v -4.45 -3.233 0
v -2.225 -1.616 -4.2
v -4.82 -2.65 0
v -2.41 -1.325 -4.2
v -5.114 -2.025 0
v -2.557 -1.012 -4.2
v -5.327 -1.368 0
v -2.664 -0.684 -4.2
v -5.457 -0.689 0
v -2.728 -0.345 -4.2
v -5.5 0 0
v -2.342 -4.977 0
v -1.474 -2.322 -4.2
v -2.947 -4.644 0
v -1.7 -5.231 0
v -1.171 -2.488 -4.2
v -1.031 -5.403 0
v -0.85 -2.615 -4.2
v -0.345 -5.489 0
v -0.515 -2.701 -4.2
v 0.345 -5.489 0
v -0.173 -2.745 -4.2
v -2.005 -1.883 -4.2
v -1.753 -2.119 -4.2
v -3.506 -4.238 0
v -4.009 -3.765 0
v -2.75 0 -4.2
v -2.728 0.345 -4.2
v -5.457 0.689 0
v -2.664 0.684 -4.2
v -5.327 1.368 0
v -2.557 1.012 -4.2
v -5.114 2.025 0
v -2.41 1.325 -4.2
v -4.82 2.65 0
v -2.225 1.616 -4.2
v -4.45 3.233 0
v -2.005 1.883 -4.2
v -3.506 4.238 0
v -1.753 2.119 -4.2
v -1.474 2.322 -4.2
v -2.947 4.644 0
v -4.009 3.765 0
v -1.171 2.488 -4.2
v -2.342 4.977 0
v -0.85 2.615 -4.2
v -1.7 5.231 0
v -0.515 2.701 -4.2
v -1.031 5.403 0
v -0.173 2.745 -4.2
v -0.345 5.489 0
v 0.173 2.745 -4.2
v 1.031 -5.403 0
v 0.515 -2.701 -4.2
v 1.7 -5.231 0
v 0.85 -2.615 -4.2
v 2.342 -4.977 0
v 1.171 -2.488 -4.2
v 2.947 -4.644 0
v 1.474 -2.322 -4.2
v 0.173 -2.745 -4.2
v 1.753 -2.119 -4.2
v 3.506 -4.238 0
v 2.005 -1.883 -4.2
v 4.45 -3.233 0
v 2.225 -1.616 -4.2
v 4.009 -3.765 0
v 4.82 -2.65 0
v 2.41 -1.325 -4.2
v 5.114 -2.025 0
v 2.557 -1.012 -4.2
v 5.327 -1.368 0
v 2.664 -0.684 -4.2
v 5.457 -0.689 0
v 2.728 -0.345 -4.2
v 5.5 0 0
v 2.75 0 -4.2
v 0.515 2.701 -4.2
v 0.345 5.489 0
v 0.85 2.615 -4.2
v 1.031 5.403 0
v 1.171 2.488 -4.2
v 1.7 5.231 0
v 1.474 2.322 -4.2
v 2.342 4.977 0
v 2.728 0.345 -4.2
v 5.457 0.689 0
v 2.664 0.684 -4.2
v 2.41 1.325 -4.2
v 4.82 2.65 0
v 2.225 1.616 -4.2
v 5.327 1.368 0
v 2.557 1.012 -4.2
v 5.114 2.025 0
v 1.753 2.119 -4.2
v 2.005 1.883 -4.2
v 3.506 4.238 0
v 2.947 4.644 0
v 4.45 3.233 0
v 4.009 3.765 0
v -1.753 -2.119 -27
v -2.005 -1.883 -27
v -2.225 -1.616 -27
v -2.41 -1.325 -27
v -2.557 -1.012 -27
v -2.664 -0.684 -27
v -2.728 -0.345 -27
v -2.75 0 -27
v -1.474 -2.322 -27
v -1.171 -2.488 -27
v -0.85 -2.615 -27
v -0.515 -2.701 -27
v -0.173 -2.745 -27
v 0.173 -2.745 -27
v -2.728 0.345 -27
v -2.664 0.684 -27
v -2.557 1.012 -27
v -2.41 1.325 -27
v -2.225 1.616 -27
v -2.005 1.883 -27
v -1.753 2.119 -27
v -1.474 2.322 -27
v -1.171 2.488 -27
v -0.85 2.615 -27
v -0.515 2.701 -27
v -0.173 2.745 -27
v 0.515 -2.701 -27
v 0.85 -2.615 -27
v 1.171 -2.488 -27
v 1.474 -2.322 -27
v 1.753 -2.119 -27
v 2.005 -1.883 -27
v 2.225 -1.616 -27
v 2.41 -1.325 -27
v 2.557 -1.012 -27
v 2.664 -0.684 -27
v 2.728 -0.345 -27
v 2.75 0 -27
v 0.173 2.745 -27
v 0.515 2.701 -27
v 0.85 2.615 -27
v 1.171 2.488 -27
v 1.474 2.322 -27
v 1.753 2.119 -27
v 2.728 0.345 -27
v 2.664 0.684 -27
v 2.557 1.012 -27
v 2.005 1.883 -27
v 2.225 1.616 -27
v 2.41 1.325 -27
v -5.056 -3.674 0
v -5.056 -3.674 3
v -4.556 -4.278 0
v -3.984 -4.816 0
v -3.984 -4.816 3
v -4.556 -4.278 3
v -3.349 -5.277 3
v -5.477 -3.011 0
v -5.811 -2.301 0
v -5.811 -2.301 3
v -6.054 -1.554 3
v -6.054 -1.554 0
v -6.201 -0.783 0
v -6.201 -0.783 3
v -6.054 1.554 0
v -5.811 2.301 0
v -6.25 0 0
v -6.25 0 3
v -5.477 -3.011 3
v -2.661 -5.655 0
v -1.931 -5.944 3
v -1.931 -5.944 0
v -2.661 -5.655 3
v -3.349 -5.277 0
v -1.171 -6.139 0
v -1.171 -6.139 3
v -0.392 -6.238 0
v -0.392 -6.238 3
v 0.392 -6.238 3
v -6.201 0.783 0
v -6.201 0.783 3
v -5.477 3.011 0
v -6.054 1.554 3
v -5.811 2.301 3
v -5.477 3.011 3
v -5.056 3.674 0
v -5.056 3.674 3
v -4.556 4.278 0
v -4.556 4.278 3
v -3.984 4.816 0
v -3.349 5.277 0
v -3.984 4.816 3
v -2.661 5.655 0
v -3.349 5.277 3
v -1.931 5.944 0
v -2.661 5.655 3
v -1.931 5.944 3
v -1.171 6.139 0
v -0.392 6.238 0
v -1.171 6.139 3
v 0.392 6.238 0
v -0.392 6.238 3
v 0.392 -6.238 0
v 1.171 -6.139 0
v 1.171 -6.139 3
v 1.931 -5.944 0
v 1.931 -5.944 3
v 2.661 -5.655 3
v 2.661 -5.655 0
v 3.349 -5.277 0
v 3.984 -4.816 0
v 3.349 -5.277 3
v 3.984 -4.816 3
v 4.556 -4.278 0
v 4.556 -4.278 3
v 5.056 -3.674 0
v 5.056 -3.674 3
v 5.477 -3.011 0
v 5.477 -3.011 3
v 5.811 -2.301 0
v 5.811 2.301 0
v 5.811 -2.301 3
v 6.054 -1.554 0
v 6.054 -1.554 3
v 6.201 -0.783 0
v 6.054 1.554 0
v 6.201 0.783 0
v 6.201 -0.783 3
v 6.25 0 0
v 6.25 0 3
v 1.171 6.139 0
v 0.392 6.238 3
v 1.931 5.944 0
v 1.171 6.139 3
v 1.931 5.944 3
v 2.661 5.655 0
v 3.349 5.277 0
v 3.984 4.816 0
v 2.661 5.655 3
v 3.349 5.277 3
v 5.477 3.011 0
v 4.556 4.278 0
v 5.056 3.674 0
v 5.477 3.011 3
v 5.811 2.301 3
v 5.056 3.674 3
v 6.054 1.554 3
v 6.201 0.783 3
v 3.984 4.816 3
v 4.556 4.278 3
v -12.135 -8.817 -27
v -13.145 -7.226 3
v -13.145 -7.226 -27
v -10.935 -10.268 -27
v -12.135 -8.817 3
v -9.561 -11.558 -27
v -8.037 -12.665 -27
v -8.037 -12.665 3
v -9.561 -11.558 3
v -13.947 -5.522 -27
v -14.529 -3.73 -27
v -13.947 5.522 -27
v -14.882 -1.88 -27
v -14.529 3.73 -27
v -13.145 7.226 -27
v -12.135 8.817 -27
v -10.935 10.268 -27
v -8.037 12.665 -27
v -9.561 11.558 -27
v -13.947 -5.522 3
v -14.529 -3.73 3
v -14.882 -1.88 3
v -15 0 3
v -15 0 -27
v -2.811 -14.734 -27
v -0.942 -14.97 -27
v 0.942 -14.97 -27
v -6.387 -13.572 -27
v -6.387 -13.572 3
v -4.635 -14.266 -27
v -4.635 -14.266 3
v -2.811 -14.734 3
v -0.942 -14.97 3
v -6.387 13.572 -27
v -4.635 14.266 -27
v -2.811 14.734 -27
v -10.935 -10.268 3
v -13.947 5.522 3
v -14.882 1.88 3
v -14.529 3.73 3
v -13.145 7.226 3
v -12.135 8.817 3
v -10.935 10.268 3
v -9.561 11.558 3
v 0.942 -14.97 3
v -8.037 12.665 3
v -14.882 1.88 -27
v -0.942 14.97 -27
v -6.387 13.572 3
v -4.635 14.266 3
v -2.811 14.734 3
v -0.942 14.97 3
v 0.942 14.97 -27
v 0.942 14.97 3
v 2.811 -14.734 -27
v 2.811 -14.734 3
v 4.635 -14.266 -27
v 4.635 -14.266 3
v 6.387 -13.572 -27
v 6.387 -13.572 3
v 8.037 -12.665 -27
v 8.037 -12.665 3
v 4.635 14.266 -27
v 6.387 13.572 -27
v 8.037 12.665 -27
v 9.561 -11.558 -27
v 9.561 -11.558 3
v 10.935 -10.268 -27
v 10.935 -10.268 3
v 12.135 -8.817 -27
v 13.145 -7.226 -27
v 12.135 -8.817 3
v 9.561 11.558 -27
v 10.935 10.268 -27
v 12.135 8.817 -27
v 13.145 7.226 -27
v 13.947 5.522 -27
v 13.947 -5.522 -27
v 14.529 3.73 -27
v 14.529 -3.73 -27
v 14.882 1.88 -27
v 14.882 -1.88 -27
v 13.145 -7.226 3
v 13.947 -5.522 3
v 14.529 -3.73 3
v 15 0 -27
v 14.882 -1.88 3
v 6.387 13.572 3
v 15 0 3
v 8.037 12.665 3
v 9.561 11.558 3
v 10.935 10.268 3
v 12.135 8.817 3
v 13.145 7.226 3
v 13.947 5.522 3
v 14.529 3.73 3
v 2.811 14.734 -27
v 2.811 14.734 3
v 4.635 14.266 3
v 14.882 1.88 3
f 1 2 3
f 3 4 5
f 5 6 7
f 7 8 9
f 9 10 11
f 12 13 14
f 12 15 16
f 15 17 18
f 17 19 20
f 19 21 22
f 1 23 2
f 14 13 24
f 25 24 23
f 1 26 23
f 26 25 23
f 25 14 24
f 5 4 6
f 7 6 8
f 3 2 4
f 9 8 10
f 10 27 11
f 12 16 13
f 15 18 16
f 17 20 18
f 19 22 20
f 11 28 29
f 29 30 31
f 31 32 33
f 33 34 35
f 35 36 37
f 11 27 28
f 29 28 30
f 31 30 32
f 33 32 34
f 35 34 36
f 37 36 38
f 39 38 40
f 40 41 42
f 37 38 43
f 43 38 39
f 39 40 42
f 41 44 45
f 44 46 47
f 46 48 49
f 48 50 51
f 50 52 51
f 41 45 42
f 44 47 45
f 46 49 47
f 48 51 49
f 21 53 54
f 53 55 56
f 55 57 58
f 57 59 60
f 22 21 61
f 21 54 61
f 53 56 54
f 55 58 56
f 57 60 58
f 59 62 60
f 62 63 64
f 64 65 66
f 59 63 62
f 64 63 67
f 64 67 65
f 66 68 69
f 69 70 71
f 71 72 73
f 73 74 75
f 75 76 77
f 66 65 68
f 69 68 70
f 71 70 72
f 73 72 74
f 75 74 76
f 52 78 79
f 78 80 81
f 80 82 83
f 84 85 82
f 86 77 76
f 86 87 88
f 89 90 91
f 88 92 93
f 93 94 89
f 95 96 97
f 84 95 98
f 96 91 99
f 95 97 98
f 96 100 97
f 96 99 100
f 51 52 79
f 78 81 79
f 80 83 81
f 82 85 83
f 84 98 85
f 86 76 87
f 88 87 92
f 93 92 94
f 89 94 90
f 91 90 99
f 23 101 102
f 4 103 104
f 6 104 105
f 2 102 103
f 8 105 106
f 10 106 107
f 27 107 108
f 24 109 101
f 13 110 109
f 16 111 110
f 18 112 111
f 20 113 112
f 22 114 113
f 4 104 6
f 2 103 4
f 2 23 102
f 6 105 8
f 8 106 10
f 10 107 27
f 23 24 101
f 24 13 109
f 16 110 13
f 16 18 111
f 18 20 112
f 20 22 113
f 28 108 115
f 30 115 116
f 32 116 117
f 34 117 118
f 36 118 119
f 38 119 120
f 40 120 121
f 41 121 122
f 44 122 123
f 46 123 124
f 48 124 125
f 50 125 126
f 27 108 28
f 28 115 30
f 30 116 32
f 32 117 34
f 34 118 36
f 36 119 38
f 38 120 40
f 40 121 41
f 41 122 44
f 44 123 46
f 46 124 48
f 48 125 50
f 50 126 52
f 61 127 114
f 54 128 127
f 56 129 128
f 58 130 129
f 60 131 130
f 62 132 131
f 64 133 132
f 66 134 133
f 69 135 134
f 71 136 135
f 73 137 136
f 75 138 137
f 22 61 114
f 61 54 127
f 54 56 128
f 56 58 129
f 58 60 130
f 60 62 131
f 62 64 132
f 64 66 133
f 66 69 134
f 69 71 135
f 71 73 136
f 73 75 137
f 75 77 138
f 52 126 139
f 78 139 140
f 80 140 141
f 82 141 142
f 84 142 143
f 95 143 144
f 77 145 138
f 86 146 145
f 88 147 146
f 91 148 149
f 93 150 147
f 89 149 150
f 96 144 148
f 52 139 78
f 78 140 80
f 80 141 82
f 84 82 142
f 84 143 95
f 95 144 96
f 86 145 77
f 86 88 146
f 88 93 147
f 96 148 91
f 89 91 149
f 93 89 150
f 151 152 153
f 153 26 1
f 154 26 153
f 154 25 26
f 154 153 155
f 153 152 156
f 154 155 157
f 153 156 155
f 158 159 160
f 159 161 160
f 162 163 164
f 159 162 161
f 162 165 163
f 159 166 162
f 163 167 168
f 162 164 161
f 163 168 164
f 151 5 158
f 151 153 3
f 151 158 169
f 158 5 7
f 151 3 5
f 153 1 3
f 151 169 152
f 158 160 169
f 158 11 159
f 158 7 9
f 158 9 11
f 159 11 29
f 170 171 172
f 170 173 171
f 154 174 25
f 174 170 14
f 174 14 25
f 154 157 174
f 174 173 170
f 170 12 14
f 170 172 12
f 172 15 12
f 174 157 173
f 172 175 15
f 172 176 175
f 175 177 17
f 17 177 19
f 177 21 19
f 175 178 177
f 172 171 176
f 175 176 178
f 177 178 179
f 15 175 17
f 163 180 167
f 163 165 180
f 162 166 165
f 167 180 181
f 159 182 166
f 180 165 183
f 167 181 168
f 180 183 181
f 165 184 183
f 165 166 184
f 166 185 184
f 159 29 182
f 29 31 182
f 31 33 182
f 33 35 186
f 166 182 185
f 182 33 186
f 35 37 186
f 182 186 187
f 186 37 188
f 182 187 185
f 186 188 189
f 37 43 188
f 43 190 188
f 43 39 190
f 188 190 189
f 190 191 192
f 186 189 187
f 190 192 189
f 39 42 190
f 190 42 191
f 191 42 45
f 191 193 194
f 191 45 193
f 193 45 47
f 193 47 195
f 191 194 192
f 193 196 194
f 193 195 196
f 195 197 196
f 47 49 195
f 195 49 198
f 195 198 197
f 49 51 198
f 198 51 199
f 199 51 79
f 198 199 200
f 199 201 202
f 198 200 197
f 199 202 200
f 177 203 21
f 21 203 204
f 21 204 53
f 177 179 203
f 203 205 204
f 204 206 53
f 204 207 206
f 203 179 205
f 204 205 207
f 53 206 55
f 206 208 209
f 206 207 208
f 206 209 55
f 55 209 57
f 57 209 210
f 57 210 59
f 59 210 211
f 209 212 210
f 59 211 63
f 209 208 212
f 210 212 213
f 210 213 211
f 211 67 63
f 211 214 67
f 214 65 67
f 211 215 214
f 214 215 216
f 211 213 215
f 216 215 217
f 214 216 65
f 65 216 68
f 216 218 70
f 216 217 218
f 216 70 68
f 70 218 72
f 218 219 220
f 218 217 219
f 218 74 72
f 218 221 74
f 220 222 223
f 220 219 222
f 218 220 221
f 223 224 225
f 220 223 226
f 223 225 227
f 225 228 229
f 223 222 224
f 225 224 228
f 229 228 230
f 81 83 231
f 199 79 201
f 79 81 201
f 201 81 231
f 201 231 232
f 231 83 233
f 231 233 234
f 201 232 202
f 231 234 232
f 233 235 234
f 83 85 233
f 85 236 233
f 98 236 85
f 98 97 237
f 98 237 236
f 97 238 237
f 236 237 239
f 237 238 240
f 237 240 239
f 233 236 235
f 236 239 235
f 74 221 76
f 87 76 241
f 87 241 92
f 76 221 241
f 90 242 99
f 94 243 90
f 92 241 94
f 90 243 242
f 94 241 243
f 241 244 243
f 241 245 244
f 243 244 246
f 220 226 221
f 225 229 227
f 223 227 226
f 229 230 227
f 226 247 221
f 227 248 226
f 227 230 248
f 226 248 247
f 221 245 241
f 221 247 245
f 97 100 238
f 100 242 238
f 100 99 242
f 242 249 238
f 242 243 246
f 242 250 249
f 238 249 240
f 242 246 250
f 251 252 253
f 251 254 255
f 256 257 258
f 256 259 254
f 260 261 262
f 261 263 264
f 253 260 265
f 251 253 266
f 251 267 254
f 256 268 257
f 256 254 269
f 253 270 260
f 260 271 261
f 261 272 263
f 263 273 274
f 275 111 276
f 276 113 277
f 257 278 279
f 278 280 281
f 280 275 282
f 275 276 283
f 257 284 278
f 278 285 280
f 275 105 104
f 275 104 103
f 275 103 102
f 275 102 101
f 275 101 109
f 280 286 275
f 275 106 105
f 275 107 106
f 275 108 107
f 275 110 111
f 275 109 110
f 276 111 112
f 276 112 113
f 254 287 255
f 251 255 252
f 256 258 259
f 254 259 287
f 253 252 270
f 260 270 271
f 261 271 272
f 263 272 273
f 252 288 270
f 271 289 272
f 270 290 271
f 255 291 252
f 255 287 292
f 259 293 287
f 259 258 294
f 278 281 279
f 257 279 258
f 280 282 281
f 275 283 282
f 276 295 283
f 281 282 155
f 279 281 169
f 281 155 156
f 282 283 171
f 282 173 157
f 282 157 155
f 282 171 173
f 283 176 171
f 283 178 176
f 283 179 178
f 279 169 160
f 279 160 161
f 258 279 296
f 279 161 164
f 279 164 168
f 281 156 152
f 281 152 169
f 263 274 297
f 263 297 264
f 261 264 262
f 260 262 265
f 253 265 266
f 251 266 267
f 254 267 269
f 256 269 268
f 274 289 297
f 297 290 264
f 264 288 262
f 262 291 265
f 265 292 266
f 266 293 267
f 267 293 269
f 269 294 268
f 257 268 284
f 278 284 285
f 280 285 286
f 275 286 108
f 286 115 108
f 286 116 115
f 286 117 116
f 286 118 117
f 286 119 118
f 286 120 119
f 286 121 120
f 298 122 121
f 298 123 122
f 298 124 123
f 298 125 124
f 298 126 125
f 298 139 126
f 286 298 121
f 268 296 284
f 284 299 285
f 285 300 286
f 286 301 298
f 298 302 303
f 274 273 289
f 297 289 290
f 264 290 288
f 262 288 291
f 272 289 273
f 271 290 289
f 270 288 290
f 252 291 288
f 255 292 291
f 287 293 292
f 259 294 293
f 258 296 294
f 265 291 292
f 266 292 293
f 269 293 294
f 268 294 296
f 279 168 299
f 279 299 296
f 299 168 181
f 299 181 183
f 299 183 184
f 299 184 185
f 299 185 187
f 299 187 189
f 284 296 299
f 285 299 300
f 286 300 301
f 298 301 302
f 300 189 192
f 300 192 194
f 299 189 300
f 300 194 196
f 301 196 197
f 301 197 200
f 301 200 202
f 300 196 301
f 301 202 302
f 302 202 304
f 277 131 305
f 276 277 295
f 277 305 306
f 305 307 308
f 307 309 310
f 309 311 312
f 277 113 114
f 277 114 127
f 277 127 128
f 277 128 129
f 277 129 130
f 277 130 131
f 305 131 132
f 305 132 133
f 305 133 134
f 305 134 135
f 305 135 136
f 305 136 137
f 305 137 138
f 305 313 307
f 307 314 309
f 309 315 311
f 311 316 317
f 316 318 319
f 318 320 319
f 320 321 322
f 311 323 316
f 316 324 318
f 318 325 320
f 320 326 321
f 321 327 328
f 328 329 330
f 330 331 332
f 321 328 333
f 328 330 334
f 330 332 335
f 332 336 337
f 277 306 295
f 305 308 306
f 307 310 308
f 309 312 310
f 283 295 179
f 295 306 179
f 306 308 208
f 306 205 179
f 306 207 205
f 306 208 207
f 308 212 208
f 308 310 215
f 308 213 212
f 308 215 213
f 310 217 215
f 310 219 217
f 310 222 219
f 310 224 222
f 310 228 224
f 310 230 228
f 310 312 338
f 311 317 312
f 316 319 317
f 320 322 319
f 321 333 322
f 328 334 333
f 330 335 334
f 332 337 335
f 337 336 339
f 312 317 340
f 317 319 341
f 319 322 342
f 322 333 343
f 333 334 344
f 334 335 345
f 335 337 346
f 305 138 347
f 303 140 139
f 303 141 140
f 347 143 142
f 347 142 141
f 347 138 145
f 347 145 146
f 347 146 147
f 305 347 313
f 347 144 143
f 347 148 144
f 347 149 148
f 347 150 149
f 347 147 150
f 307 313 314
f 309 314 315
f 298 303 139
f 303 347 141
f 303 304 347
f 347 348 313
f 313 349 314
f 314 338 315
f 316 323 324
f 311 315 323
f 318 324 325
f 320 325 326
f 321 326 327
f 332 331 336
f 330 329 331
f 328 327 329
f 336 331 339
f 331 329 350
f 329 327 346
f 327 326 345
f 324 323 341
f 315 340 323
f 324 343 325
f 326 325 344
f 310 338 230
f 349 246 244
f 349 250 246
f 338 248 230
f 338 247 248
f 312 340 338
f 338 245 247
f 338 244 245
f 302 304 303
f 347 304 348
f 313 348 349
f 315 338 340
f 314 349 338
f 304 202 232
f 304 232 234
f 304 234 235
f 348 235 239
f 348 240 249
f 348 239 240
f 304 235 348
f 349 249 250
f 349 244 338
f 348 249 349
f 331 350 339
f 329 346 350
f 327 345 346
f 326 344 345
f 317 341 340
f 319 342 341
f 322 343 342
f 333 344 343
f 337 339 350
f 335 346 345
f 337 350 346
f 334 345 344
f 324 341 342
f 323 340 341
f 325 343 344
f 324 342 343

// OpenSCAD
$fn = 50;


difference() {
	union() {
		translate(v = [0, 0, -27.0000000000]) {
			cylinder(h = 30, r = 15.0000000000);
		}
	}
	union() {
		translate(v = [0, 0, 0]) {
			rotate(a = [0, 0, 0]) {
				difference() {
					union() {
						translate(v = [0, 0, -30.0000000000]) {
							cylinder(h = 30, r = 2.2500000000);
						}
						translate(v = [0, 0, -4.2000000000]) {
							cylinder(h = 4.2000000000, r1 = 2.7500000000, r2 = 5.5000000000);
						}
						translate(v = [0, 0, -30.0000000000]) {
							cylinder(h = 30, r = 2.7500000000);
						}
						translate(v = [0, 0, -30.0000000000]) {
							cylinder(h = 30, r = 2.2500000000);
						}
					}
					union();
				}
			}
		}
		#cylinder(h = 3, r = 6.2500000000);
	}
}
